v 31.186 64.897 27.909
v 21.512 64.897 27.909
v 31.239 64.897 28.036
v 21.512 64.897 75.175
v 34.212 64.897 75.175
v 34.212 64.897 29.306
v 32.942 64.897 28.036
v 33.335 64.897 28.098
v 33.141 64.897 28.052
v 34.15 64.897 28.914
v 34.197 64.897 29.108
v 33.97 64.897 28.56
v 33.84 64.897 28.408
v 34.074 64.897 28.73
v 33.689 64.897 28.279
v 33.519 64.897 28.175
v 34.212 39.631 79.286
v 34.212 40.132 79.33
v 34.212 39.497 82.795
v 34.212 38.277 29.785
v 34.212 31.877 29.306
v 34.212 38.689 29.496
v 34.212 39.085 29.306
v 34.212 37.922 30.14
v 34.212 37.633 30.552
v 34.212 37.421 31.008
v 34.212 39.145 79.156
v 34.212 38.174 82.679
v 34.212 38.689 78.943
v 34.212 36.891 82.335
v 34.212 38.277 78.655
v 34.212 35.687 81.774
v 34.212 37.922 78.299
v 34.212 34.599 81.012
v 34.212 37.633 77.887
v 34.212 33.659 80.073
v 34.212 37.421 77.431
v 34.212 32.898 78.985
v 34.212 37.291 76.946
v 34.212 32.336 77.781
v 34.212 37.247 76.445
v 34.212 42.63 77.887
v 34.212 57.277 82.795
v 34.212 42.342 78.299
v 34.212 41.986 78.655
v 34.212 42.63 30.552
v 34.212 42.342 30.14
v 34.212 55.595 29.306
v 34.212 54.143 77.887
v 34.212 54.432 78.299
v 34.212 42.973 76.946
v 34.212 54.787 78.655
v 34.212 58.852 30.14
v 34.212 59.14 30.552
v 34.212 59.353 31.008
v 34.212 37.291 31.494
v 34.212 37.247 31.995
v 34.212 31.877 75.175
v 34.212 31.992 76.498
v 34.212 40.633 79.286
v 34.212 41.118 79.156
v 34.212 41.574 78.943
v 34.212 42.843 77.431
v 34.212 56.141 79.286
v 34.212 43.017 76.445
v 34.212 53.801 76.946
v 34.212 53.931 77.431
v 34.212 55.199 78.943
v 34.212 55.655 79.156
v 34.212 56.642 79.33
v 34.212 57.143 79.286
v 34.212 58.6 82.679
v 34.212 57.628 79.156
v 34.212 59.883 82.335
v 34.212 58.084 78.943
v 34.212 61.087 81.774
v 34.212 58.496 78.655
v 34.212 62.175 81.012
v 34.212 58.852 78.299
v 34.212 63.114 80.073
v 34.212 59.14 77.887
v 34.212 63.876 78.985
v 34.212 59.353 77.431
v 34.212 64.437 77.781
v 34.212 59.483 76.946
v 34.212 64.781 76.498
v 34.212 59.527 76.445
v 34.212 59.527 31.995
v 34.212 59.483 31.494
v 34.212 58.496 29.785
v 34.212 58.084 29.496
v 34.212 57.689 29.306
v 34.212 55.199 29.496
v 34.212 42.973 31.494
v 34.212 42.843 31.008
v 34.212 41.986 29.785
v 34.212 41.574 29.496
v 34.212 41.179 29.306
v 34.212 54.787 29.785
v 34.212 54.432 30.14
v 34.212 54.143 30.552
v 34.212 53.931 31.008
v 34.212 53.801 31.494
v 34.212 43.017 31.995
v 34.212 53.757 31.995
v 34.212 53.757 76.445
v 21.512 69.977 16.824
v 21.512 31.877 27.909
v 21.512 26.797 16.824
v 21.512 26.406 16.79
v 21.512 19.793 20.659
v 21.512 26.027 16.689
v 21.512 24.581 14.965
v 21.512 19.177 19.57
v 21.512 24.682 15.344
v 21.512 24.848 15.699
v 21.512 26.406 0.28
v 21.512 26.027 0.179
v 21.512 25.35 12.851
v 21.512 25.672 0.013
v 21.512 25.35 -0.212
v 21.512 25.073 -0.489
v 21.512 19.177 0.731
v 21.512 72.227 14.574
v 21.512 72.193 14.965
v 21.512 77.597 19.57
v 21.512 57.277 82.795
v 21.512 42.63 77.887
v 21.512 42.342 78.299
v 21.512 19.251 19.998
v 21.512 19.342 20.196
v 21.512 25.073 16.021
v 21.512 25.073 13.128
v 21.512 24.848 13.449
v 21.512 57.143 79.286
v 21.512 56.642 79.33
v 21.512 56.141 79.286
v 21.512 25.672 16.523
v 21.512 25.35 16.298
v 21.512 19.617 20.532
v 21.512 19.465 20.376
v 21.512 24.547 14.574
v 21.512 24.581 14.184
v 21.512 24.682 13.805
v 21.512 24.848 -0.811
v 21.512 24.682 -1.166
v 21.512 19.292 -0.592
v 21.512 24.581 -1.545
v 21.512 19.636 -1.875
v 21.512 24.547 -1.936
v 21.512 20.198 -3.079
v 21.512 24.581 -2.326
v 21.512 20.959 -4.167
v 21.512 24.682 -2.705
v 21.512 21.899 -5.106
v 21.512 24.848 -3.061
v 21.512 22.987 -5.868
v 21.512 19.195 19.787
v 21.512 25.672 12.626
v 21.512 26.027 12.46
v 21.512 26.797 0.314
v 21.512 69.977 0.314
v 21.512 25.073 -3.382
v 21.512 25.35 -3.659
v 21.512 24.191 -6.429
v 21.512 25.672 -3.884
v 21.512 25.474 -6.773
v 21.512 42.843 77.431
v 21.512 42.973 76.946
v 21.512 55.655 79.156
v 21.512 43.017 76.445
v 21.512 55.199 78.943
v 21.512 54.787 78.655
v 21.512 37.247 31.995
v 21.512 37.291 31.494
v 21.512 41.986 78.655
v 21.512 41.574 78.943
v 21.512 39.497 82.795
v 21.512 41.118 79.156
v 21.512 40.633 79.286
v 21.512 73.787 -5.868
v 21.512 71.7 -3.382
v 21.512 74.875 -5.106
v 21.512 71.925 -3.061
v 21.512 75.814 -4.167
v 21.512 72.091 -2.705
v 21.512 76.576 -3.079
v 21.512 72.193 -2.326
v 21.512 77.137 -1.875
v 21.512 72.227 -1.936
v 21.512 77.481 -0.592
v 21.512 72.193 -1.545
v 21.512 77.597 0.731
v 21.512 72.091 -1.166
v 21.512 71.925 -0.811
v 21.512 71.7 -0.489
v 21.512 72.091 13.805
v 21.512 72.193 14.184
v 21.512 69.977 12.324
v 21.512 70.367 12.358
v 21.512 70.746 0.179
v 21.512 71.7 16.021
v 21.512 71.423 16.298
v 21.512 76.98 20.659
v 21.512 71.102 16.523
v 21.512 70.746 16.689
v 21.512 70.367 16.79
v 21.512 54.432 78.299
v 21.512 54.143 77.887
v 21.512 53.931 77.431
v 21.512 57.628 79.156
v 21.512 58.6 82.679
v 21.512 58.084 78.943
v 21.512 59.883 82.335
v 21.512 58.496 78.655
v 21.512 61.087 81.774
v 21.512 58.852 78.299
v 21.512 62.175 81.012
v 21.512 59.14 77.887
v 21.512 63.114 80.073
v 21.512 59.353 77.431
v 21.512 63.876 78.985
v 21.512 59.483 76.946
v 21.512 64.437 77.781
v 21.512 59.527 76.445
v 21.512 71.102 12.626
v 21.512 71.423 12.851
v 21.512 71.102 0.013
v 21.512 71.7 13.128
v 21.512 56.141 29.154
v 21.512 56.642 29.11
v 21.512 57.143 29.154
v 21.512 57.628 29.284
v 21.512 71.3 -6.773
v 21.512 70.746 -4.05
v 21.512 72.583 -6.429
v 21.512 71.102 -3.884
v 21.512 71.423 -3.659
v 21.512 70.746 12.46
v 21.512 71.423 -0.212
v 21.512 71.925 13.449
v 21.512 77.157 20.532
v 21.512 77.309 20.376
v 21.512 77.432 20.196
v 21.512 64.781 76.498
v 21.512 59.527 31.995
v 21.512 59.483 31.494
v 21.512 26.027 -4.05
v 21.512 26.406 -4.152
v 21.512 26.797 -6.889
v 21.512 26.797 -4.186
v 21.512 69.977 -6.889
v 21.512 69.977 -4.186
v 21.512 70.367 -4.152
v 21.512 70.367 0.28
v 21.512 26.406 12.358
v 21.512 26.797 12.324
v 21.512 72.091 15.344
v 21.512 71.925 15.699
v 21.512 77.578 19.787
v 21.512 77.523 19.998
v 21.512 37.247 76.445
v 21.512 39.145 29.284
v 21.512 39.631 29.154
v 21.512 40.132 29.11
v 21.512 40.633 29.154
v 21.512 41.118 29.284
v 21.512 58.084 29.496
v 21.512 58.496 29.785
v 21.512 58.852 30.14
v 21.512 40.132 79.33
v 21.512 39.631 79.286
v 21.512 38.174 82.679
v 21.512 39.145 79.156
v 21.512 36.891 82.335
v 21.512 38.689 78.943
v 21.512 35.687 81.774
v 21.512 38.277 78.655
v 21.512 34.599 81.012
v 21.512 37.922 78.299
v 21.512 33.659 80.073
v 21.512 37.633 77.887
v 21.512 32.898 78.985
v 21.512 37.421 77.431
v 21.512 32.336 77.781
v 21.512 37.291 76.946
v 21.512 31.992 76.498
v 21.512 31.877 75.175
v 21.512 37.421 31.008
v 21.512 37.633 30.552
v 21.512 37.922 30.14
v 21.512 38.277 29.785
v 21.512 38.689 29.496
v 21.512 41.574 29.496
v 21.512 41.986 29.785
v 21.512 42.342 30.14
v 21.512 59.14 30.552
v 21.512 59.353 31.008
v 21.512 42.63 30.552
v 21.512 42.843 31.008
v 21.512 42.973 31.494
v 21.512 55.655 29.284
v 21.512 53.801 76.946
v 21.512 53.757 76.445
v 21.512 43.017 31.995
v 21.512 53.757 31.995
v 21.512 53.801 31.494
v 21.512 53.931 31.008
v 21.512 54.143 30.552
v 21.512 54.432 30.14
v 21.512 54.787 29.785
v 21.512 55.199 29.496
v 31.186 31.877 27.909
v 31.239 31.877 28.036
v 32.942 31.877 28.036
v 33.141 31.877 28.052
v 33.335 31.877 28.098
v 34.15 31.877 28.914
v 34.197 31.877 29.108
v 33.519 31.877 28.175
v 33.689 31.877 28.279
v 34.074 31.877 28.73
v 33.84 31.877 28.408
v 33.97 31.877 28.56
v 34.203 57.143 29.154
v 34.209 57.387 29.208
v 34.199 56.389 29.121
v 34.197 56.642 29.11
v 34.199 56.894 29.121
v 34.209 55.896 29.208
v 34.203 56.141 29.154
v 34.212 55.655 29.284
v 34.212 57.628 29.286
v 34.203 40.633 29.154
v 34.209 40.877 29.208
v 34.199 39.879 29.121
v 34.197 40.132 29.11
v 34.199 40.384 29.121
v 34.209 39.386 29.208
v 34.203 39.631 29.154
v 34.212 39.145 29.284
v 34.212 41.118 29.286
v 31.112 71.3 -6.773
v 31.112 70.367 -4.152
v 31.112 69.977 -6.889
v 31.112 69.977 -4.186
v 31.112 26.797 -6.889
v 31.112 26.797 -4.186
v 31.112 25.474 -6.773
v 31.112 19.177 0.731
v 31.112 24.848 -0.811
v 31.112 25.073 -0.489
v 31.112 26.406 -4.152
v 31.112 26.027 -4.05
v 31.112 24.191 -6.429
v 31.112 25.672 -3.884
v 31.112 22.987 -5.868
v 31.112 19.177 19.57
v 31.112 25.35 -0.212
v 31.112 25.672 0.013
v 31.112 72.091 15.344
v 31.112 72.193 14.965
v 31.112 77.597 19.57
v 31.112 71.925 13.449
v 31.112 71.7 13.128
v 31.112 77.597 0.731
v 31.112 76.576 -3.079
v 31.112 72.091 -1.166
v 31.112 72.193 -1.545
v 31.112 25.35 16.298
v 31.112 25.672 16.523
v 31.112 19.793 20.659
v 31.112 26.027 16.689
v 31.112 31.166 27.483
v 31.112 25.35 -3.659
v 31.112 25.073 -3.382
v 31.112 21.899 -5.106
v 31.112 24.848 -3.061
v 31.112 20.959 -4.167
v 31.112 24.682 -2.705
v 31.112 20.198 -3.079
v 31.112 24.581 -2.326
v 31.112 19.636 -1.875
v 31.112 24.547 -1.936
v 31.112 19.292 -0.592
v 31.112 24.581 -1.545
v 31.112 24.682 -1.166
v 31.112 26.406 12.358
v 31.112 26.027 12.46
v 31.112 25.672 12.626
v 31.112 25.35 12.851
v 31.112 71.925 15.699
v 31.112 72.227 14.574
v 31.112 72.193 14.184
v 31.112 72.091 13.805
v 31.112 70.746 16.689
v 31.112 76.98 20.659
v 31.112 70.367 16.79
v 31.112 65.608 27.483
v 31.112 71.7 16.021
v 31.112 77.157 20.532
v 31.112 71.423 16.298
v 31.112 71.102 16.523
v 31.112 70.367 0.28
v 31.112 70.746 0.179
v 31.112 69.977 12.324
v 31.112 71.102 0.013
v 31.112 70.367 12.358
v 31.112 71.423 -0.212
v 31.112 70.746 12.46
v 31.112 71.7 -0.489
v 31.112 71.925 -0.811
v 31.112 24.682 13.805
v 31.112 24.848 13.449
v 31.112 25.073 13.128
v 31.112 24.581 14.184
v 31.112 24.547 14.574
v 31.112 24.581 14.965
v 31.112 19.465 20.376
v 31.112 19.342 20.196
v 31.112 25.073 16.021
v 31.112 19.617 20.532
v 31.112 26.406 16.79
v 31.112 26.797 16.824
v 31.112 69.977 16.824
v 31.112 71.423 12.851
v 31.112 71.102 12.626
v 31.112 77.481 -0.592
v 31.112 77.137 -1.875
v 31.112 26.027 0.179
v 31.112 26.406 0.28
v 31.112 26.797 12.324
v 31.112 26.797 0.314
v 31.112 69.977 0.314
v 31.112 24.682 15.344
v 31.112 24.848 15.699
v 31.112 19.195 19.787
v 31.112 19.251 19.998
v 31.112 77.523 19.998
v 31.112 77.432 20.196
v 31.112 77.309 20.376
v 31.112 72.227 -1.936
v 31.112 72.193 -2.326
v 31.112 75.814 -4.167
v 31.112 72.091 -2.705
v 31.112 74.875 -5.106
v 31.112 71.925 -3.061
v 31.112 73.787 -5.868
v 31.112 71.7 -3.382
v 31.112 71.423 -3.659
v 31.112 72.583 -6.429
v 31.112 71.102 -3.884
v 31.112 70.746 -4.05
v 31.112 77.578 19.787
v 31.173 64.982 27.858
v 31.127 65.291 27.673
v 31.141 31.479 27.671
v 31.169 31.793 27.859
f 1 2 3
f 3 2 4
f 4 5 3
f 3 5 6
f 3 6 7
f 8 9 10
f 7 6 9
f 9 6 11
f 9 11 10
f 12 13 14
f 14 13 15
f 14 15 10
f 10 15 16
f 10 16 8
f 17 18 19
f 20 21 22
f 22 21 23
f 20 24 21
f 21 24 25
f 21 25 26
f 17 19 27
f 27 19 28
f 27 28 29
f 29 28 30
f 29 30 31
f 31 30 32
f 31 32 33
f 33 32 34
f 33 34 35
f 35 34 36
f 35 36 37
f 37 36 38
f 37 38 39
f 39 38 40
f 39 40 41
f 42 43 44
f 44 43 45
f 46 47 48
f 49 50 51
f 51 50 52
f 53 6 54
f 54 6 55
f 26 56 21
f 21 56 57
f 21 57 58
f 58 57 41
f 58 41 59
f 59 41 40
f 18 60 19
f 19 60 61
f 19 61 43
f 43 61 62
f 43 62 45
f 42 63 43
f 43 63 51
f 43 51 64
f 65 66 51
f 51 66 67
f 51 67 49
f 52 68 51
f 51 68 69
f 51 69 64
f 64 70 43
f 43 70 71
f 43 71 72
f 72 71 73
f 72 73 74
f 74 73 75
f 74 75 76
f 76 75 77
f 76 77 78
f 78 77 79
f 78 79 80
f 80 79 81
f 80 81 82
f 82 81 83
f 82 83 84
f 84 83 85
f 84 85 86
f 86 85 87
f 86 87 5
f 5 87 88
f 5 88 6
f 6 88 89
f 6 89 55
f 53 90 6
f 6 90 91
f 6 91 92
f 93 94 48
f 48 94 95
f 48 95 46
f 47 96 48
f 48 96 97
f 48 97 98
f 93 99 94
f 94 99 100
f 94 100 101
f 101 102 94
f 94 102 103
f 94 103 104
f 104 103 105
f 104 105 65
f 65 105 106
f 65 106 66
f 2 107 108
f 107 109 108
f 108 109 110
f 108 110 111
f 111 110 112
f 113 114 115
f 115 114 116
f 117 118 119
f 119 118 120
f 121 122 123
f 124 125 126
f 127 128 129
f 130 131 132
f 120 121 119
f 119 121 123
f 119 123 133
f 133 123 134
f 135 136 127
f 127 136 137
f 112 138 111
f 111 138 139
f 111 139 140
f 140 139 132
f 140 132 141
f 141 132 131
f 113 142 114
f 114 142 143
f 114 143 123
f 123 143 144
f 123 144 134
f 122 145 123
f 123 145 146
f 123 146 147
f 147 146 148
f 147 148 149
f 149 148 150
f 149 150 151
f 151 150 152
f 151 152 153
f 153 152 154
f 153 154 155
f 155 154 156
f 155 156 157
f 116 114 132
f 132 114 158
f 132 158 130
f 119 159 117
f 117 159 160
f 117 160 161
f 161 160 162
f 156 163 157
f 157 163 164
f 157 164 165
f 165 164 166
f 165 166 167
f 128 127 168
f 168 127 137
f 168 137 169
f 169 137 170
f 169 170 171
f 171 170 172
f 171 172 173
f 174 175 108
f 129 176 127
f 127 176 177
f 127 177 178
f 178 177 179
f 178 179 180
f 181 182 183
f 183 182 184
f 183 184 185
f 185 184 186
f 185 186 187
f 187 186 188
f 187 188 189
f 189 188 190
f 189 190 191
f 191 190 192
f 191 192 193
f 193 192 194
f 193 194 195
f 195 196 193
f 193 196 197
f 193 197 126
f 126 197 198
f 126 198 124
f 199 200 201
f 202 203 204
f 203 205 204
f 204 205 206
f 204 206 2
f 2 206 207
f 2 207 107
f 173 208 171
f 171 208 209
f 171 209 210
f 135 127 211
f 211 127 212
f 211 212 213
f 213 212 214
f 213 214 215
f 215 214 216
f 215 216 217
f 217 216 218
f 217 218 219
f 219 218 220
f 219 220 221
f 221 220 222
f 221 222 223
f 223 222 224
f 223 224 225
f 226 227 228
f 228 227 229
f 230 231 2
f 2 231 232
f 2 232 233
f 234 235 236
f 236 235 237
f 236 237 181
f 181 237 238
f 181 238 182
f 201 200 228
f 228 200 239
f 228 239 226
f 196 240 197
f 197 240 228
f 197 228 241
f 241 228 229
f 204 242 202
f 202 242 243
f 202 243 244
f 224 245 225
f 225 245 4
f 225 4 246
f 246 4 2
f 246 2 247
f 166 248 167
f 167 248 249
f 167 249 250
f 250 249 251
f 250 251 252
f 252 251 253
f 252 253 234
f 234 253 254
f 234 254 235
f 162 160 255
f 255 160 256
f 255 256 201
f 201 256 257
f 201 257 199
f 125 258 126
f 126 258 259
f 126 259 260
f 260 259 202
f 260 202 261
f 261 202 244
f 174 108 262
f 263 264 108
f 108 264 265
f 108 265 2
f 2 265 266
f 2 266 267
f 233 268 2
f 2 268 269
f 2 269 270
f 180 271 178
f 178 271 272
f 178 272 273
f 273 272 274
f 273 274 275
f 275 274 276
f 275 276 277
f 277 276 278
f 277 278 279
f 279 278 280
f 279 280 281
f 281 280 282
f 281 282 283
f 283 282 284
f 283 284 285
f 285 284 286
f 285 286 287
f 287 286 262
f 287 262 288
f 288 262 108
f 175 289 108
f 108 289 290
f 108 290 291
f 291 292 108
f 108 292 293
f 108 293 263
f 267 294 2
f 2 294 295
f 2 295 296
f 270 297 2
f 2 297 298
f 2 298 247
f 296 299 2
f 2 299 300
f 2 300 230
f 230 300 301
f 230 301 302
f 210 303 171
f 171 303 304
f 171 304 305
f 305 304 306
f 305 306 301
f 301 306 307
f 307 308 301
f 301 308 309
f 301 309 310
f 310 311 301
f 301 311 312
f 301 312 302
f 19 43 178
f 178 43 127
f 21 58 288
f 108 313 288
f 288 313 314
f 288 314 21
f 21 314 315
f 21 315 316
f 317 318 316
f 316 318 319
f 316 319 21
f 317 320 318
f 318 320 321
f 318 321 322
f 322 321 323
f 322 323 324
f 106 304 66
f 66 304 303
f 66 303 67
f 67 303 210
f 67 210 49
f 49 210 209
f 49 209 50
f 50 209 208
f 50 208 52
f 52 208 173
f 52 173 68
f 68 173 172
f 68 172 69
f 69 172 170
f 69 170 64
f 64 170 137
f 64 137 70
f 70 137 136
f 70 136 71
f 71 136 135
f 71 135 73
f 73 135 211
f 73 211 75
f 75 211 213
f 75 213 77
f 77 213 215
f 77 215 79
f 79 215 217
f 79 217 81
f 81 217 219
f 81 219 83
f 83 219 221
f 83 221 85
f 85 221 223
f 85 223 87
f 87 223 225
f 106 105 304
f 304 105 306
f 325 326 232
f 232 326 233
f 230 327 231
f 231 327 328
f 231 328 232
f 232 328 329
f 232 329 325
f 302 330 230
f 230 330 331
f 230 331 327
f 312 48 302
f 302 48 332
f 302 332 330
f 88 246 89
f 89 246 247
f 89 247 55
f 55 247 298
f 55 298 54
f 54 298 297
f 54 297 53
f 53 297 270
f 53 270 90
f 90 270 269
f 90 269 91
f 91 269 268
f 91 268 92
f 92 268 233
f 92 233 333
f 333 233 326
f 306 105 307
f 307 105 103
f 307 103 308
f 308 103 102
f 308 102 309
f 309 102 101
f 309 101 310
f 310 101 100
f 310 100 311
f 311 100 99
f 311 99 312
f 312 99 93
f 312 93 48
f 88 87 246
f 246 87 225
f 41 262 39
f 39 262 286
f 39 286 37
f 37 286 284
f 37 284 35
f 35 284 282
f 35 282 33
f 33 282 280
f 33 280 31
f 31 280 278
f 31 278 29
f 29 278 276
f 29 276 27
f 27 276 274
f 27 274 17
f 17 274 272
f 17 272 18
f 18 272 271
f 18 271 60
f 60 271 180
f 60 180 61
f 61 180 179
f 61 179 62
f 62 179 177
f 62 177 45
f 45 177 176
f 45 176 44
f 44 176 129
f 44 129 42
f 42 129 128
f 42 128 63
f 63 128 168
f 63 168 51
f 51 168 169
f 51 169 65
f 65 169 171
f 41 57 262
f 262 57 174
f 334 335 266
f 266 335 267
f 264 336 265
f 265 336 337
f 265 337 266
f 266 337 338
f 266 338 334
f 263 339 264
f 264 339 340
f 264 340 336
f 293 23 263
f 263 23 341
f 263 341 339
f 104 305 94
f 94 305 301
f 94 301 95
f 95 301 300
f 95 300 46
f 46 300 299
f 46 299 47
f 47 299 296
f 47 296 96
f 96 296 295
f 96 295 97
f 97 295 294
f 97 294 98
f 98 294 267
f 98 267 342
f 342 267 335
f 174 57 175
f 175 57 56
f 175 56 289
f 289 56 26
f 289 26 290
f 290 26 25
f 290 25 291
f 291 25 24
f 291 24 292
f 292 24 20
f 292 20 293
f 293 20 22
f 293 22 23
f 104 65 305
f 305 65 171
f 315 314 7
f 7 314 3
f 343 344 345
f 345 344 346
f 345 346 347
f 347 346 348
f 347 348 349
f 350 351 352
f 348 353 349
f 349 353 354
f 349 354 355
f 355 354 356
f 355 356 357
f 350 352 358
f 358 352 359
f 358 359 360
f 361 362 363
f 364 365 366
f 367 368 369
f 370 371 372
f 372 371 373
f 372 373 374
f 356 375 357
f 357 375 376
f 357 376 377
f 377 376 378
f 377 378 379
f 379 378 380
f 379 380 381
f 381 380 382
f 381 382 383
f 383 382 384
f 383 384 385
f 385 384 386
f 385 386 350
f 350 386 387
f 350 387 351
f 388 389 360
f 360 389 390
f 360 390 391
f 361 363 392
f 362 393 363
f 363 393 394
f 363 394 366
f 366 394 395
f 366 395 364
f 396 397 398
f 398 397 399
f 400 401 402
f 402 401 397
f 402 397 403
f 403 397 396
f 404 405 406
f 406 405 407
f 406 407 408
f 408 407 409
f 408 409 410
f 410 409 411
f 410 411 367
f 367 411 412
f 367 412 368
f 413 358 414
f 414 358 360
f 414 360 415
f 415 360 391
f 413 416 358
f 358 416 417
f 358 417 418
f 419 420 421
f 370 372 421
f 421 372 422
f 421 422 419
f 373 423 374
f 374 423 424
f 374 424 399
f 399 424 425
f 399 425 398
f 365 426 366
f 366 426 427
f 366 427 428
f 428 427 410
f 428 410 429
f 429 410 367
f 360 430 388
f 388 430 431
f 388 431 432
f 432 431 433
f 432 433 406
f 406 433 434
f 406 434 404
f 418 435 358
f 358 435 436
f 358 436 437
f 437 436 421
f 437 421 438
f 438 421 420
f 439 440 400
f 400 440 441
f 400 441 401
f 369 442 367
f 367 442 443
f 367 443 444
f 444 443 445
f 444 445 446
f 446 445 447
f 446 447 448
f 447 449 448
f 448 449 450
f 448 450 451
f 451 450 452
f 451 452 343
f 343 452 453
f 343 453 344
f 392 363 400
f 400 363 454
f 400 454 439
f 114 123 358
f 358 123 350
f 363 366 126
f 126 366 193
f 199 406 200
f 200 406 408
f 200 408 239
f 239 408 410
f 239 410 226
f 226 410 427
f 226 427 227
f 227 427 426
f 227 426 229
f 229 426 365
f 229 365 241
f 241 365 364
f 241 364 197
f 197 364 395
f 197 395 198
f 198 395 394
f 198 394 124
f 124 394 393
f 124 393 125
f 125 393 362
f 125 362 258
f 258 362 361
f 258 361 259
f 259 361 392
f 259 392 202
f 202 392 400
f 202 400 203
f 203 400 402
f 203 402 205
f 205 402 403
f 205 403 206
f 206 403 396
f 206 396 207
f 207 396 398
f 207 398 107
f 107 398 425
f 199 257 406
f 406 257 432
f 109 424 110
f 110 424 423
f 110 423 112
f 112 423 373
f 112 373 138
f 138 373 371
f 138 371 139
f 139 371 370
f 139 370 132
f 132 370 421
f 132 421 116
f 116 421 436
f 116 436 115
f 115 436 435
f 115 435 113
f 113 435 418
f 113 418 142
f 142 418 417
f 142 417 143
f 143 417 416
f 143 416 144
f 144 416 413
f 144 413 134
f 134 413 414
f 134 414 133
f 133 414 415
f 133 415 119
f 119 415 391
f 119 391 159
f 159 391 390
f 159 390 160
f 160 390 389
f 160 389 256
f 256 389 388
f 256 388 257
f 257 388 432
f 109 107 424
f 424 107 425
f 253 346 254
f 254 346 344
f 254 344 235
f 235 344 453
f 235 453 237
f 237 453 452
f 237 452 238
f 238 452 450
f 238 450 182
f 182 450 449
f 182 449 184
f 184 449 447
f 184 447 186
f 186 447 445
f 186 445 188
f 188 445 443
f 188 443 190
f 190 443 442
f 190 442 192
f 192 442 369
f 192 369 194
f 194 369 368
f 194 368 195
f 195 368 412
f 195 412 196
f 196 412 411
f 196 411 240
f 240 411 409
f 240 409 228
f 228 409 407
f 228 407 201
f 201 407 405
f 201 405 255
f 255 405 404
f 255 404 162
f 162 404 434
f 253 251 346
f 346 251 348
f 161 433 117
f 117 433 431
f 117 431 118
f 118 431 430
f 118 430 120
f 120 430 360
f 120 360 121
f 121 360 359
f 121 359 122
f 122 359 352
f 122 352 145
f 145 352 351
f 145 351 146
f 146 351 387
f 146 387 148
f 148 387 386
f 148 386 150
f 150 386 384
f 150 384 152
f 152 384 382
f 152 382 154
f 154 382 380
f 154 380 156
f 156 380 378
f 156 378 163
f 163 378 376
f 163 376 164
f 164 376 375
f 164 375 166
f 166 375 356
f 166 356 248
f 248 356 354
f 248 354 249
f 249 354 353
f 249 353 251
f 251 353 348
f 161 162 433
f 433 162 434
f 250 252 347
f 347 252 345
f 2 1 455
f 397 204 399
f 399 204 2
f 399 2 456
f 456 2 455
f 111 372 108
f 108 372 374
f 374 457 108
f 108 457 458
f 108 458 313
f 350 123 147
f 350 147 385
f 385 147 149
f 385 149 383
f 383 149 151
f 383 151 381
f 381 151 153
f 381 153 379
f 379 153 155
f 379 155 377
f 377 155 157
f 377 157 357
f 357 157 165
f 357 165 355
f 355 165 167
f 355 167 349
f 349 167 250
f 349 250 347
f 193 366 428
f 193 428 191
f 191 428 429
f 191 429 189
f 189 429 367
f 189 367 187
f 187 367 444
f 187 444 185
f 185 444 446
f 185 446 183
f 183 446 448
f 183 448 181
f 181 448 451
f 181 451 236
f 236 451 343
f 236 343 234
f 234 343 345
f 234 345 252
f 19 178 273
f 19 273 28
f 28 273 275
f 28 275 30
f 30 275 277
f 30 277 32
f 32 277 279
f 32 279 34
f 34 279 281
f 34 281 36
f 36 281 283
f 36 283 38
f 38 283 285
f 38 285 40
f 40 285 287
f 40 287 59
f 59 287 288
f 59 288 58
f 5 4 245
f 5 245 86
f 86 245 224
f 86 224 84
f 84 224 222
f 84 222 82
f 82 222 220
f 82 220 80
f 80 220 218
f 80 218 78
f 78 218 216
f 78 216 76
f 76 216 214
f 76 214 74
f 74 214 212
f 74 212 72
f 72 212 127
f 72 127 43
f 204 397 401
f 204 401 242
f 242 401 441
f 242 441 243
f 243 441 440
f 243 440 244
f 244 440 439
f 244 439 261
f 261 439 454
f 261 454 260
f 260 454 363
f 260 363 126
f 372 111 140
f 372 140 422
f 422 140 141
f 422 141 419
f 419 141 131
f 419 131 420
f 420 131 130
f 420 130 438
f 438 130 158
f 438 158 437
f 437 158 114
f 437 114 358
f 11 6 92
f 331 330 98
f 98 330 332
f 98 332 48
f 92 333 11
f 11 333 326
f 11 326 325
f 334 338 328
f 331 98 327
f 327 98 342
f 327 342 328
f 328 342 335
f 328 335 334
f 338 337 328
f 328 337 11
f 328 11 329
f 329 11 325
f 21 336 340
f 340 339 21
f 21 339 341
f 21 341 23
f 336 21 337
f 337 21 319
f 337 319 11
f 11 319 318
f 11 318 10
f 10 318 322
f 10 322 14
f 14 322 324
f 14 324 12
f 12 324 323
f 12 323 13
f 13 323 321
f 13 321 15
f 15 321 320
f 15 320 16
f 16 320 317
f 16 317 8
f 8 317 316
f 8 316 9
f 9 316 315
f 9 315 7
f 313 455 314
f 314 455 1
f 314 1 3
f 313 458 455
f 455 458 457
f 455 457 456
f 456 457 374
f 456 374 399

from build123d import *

# Parameters (mm, degrees)
SKETCH1_W           = 118.258395199
SKETCH1_H           = 33.02
BOSS_EXTRUDE1_DEPTH = 12.7
SKETCH2_W           = 3.1
SKETCH2_H           = 63.5
CUT_EXTRUDE1_DEPTH  = 96.476579779
CHAMFER1_SIZE       = 0.127
SKETCH5_W           = 63.373
SKETCH5_H           = 12.7
BOSS_EXTRUDE2_DEPTH = 9.6
CUT_EXTRUDE2_DEPTH  = 114.878760659
SKETCH4_W           = 10.16
SKETCH4_H           = 28.575
CUT_EXTRUDE3_DEPTH  = 107.95023743
CUT_EXTRUDE4_DEPTH  = 114.878760659
FILLET1_R           = 7.62
FILLET2_R           = 1.27


with BuildPart() as part:
    # Sketch1 → Boss-Extrude1 (new body)
    with BuildSketch(Plane(origin=(21.512469627, 0, 0), x_dir=(0, 0, -1), z_dir=(1, 0, 0))):
        with Locations((-23.66551122, 48.386703028)):
            Rectangle(SKETCH1_W, SKETCH1_H)
        with BuildLine():
            Line((-76.444708819, 59.526711228), (-31.994708819, 59.526711228))
            ThreePointArc((-31.994708819, 59.526711228), (-29.109700619, 56.641703028), (-31.994708819, 53.756694828))
            Line((-31.994708819, 53.756694828), (-76.444708819, 53.756694828))
            ThreePointArc((-76.444708819, 53.756694828), (-79.329717019, 56.641703028), (-76.444708819, 59.526711228))
        make_face(mode=Mode.SUBTRACT)
        with BuildLine():
            Line((-76.444708819, 37.246694828), (-31.994708819, 37.246694828))
            ThreePointArc((-31.994708819, 37.246694828), (-29.109700619, 40.131703028), (-31.994708819, 43.016711228))
            Line((-31.994708819, 43.016711228), (-76.444708819, 43.016711228))
            ThreePointArc((-76.444708819, 43.016711228), (-79.329717019, 40.131703028), (-76.444708819, 37.246694828))
        make_face(mode=Mode.SUBTRACT)
    extrude(amount=BOSS_EXTRUDE1_DEPTH)

    # Sketch2 → Cut-Extrude1 (cut, through all)
    with BuildSketch(Plane(origin=(0, 64.896703028, 0), x_dir=(1, 0, 0), z_dir=(0, 1, 0))):
        with Locations((32.662469627, 3.71368638)):
            Rectangle(SKETCH2_W, SKETCH2_H)
    extrude(amount=-CUT_EXTRUDE1_DEPTH, mode=Mode.SUBTRACT)

    # Chamfer1
    chamfer1_edges = [part.edges().sort_by_distance(p)[0] for p in [
        (31.112469627, 48.386703028, 28.03631362),
    ]]
    chamfer(chamfer1_edges, length=CHAMFER1_SIZE)

    # Sketch5 → Boss-Extrude2 (add)
    with BuildSketch(Plane(origin=(31.112469627, 0, 0), x_dir=(0, 0, -1), z_dir=(1, 0, 0))):
        with Locations((3.77718638, 25.526703028)):
            Rectangle(SKETCH5_W, SKETCH5_H)
        with Locations((3.77718638, 71.246703028)):
            Rectangle(SKETCH5_W, SKETCH5_H)
    extrude(amount=-BOSS_EXTRUDE2_DEPTH)

    # Sketch3 → Cut-Extrude2 (cut, through all)
    with BuildSketch(Plane(origin=(31.112469627, 0, 0), x_dir=(0, 0, -1), z_dir=(1, 0, 0))):
        with BuildLine():
            Line((4.18568638, 69.976703028), (4.18568638, 26.796703028))
            ThreePointArc((4.18568638, 26.796703028), (1.93568638, 24.546703028), (-0.31431362, 26.796703028))
            Line((-0.31431362, 26.796703028), (-0.31431362, 69.976703028))
            ThreePointArc((-0.31431362, 69.976703028), (1.93568638, 72.226703028), (4.18568638, 69.976703028))
        make_face()
        with BuildLine():
            Line((-16.82431362, 69.976703028), (-16.82431362, 26.796703028))
            ThreePointArc((-16.82431362, 26.796703028), (-14.57431362, 24.546703028), (-12.32431362, 26.796703028))
            Line((-12.32431362, 26.796703028), (-12.32431362, 69.976703028))
            ThreePointArc((-12.32431362, 69.976703028), (-14.57431362, 72.226703028), (-16.82431362, 69.976703028))
        make_face()
    extrude(amount=-CUT_EXTRUDE2_DEPTH, mode=Mode.SUBTRACT)

    # Sketch4 → Cut-Extrude3 (cut, through all)
    with BuildSketch(Plane(origin=(0, 77.596703028, 0), x_dir=(1, 0, 0), z_dir=(0, 1, 0))):
        with Locations((26.592469627, 21.17618638)):
            Rectangle(SKETCH4_W, SKETCH4_H)
    extrude(amount=-CUT_EXTRUDE3_DEPTH, mode=Mode.SUBTRACT)

    # Sketch6 → Cut-Extrude4 (cut, through all)
    with BuildSketch(Plane(origin=(31.112469627, 0, 0), x_dir=(0, 0, -1), z_dir=(1, 0, 0))):
        Polygon((-27.90931362, 64.896703028), (-20.28931362, 77.596703028), (-27.90931362, 77.596703028), align=None)
        Polygon((-20.28931362, 19.176703028), (-27.90931362, 19.176703028), (-27.90931362, 31.876703028), align=None)
    extrude(amount=-CUT_EXTRUDE4_DEPTH, mode=Mode.SUBTRACT)

    # Fillet1
    fillet1_edges = [part.edges().sort_by_distance(p)[0] for p in [
        (26.312469627, 77.596703028, -6.88868638),
        (26.312469627, 19.176703028, -6.88868638),
        (27.862469627, 64.896703028, 82.794708819),
        (27.862469627, 31.876703028, 82.794708819),
    ]]
    fillet(fillet1_edges, radius=FILLET1_R)

    # Fillet2
    # the kernel refuses this fillet: 1.27 mm, written as the material it adds along each edge
    with BuildSketch(Plane(origin=(31.112469627, 65.963153443, 27.90931362), x_dir=(0.7071067811865475, 0, 0.7071067811865475), z_dir=(0, -1, 0))) as fillet2_piece_1_section:
        with BuildLine():
            CenterArc((0.596387884, -1.19966334), FILLET2_R, 109.158067237, 25.841932763)
            Line((-0.301637728, -0.301637728), (0, 0))
            Line((0, 0), (0.179605122, 0))
        make_face()
    fillet2_piece_1 = extrude(amount=35.152900829, mode=Mode.PRIVATE)
    fillet2_piece_1 = split(fillet2_piece_1, bisect_by=Plane(origin=(31.112469627, 65.680857745, 27.43882079), z_dir=(0, -0.5144957554275265, -0.8574929257125442)), keep=Keep.TOP, mode=Mode.PRIVATE)
    fillet2_piece_1 = split(fillet2_piece_1, bisect_by=Plane(origin=(31.112469627, 56.940269509, 42.947453509), z_dir=(0, 0.5144957554275265, -0.8574929257125442)), keep=Keep.TOP, mode=Mode.PRIVATE)
    add(fillet2_piece_1)
    with BuildSketch(Plane(origin=(31.112469627, 64.896703028, 27.90931362), x_dir=(0.7071067811865475, 0, 0.7071067811865475), z_dir=(0, -1, 0))) as fillet2_piece_2:
        with BuildLine():
            CenterArc((0.596387884, -1.19966334), FILLET2_R, 109.158067237, 25.841932763)
            Line((-0.301637728, -0.301637728), (0, 0))
            Line((0, 0), (0.179605122, 0))
        make_face()
    extrude(amount=33.02)
    # the kernel refuses this fillet: 1.27 mm, written as the material it takes off along each edge
    with BuildSketch(Plane(origin=(34.212469627, 68.071703028, 28.03631362), x_dir=(-1, 0, 0), z_dir=(0, -1, 0))) as fillet2_2_piece_1:
        with BuildLine():
            CenterArc((FILLET2_R, -FILLET2_R), FILLET2_R, 90, 90)
            Line((0, -FILLET2_R), (0, 0))
            Line((0, 0), (FILLET2_R, 0))
        make_face()
    extrude(amount=39.37, mode=Mode.SUBTRACT)
    with BuildSketch(Plane(origin=(32.91012408, 77.596703028, 20.28931362), x_dir=(0, 0, -1), z_dir=(-1, 0, 0)), Plane(origin=(32.91012408, 19.176703028, 20.28931362), x_dir=(0, 0.8574929257125441, 0.5144957554275265), z_dir=(-1, 0, 0))) as fillet2_2_piece_2:
        with BuildLine():
            CenterArc((FILLET2_R * 0.566190378969, FILLET2_R), FILLET2_R, 210.963756532, 59.036243468)
            Line((-FILLET2_R * 0.291302546743, FILLET2_R * 0.485504244572), (0, 0))
            Line((0, 0), (FILLET2_R * 0.566190378969, 0))
        make_face()
    extrude(amount=13.195308906, mode=Mode.SUBTRACT)


solid = part.part
